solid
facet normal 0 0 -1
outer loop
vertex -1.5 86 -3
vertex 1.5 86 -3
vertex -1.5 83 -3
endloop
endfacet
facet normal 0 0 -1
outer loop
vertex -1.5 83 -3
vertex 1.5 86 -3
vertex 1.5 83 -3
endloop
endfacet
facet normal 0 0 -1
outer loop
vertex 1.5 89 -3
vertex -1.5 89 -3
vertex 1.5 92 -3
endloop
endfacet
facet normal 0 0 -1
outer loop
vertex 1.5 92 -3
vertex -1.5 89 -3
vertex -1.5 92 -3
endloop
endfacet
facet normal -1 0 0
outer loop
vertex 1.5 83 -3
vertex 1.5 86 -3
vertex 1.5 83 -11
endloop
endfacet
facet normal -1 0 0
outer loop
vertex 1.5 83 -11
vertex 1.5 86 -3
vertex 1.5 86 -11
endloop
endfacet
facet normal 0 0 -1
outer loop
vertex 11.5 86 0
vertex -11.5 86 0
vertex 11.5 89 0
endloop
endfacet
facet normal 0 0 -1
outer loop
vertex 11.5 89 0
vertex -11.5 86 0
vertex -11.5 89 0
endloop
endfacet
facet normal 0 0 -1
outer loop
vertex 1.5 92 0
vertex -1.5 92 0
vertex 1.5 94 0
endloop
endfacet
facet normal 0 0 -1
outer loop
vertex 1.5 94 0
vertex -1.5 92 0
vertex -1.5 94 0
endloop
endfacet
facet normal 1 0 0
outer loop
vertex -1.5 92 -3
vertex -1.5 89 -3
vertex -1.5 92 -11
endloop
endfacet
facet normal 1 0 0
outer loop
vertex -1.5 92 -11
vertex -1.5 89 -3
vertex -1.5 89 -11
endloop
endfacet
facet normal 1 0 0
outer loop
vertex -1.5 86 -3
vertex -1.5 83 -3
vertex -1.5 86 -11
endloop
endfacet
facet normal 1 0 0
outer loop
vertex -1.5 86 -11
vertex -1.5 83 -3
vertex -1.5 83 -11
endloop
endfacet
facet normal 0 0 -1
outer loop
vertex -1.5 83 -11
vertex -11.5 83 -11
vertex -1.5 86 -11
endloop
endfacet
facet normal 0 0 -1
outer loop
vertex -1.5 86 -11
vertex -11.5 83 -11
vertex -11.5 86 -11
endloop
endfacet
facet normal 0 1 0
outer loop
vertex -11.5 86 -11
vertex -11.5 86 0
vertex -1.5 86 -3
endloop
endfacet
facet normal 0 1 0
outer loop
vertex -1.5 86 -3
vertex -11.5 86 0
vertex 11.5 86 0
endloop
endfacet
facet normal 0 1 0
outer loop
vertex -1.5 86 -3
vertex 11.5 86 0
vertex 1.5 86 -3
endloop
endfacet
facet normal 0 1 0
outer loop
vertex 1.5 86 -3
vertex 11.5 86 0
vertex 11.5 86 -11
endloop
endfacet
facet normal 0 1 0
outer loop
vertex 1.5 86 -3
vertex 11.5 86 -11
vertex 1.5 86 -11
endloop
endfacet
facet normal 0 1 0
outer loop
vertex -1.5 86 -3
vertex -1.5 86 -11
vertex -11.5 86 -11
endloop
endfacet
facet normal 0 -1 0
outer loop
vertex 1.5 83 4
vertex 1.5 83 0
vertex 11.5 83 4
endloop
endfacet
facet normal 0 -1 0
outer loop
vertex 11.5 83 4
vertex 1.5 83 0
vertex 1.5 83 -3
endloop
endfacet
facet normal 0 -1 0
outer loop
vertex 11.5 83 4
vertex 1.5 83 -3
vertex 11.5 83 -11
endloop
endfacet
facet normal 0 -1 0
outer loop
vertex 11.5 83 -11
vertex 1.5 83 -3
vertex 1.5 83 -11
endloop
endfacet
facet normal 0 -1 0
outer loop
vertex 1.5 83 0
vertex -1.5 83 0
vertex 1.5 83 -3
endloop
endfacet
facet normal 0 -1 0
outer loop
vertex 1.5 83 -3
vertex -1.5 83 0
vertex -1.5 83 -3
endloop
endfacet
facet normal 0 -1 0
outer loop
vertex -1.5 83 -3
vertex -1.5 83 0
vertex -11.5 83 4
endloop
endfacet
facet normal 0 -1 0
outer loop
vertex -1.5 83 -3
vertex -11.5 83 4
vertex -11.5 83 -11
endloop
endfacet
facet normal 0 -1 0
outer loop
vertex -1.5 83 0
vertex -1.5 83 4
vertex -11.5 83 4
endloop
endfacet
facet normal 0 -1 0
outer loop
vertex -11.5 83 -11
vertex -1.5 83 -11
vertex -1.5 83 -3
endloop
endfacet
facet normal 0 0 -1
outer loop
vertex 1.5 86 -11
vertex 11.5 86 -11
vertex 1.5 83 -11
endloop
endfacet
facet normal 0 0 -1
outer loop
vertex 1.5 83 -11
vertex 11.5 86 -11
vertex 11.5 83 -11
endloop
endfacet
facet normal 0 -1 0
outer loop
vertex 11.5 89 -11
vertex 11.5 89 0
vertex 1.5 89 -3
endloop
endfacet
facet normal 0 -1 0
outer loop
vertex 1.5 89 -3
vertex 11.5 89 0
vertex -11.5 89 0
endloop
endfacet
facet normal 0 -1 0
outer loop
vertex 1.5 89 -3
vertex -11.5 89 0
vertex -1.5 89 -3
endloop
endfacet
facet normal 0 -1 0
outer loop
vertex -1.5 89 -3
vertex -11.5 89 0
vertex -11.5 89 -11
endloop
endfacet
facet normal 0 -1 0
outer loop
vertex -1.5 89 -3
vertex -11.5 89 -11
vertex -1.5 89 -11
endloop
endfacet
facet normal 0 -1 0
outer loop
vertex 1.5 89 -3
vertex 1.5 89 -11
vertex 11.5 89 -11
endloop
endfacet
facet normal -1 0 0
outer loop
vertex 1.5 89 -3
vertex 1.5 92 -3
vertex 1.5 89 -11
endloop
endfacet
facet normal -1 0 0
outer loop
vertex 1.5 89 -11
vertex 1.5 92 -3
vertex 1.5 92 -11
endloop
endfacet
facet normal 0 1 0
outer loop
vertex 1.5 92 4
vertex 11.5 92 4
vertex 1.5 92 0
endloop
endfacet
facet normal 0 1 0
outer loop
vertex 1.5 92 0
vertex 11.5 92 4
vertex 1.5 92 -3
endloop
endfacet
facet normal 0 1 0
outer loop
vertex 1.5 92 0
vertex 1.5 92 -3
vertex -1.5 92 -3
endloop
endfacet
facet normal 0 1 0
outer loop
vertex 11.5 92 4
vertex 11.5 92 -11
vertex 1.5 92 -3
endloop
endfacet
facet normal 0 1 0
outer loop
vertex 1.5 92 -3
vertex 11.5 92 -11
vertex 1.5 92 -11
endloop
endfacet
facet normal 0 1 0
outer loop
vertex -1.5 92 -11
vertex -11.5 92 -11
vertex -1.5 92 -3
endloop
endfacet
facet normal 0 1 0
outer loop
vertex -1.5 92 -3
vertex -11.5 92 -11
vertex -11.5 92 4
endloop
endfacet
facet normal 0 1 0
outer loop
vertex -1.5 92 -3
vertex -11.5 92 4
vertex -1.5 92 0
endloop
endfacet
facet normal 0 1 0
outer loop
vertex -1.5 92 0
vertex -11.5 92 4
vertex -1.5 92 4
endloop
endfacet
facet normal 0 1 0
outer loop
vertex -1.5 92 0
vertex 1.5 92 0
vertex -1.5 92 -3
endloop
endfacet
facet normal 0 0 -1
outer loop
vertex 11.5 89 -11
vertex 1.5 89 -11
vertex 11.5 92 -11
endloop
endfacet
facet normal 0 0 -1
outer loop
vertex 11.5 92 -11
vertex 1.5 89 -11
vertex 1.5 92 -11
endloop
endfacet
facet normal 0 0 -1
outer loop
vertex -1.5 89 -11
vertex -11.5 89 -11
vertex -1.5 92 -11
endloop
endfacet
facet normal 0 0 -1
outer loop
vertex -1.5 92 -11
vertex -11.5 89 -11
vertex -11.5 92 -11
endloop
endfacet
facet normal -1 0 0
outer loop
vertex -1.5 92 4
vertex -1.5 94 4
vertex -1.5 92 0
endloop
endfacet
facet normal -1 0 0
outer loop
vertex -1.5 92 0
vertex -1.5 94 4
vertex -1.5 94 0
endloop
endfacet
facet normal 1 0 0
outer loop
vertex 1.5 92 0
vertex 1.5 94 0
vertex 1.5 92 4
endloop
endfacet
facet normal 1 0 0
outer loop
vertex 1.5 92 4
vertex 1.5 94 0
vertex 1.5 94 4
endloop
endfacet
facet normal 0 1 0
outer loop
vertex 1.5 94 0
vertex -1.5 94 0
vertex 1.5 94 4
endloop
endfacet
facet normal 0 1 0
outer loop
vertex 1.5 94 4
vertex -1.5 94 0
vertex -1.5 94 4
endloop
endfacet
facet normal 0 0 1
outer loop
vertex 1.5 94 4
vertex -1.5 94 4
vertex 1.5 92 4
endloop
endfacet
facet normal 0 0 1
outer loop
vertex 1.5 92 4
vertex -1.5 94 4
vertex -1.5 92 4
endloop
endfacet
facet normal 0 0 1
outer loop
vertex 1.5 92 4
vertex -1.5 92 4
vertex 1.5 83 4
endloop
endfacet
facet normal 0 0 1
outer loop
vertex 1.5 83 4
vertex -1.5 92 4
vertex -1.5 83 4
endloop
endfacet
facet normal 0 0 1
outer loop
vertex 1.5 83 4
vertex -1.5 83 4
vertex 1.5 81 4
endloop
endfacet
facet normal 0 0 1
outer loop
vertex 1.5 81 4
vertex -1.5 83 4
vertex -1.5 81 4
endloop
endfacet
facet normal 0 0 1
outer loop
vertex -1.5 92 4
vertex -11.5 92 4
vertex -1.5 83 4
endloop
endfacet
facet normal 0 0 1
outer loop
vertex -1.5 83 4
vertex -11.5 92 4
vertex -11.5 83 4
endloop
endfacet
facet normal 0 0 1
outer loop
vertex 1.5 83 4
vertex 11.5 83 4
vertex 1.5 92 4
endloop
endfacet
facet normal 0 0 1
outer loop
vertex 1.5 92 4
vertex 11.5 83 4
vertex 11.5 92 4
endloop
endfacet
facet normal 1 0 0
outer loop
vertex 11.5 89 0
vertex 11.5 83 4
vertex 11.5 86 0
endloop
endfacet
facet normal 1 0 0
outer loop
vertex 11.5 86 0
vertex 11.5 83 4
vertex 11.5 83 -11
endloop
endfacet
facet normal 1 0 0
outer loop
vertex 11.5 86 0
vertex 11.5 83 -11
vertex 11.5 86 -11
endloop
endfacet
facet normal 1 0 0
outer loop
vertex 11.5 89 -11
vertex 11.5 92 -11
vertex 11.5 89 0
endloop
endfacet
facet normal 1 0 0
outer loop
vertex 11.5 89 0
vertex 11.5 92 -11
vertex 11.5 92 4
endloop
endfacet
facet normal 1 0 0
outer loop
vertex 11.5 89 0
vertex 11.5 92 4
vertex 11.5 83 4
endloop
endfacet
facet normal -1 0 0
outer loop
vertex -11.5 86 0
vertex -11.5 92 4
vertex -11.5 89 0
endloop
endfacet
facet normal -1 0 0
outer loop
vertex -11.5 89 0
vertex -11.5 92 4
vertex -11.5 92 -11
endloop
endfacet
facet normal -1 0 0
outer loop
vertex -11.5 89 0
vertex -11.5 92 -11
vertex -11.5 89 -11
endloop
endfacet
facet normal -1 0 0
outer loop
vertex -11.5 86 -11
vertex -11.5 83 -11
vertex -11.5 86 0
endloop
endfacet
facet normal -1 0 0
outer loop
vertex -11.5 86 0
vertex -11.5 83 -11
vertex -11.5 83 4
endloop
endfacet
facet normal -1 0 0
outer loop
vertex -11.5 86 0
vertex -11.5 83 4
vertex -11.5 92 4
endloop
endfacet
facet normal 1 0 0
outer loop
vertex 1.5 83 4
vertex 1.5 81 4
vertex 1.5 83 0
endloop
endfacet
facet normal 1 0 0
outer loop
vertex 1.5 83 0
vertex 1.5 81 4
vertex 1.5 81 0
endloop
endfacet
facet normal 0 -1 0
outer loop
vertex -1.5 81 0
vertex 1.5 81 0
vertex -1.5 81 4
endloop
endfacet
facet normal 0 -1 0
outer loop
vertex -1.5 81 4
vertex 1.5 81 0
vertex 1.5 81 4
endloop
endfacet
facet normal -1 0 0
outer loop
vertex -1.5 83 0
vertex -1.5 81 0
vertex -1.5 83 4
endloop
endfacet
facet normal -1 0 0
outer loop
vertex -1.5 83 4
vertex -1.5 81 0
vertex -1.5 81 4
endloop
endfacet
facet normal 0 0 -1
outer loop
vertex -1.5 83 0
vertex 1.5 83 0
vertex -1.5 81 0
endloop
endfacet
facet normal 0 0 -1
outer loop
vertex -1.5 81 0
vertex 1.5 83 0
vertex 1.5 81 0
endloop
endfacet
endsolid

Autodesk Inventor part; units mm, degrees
ref_plane "YZ Plane" through (0, 0, 0) normal (1, 0, 0) x (0, 1, 0)
ref_plane "XZ Plane" through (0, 0, 0) normal (0, 1, 0) x (-1, 0, 0)
ref_plane "XY Plane" through (0, 0, 0) normal (0, 0, 1) x (1, 0, 0)
sketch "Sketch1" plane through (0, 0, 0) normal (0, 0, 1) x (1, 0, 0)
  line L0 (-1.5, 81) -> (1.5, 81) projected
  line L1 (1.5, 81) -> (1.5, 86) projected
  line L2 (-1.5, 86) -> (1.5, 86) projected
  line L3 (-1.5, 86) -> (-1.5, 81) projected
  arc A0 (-53.4049, -82.5) -> (-44.7446, -87.5) centre (-44.7446, -77.5) ccw projected
  line L4 (-44.7446, -87.5) -> (44.7446, -87.5) projected
  arc A1 (44.7446, -87.5) -> (53.4049, -82.5) centre (44.7446, -77.5) ccw projected
  line L5 (53.4049, -82.5) -> (98.1495, -5) projected
  arc A2 (98.1495, -5) -> (98.1495, 5) centre (89.4893, 0) ccw projected
  line L6 (98.1495, 5) -> (53.4049, 82.5) projected
  arc A3 (53.4049, 82.5) -> (44.7446, 87.5) centre (44.7446, 77.5) ccw projected
  line L7 (44.7446, 87.5) -> (-44.7446, 87.5) projected
  arc A4 (-44.7446, 87.5) -> (-53.4049, 82.5) centre (-44.7446, 77.5) ccw projected
  line L8 (-53.4049, 82.5) -> (-98.1495, 5) projected
  arc A5 (-98.1495, 5) -> (-98.1495, -5) centre (-89.4893, 0) ccw projected
  line L9 (-98.1495, -5) -> (-53.4049, -82.5) projected
  line L10 (-50.8068, -84) -> (-98.1495, -2) projected
  arc A6 (-98.1495, 2) -> (-98.1495, -2) centre (-94.6854, 0) ccw projected
  line L11 (-98.1495, 2) -> (-50.8068, 84) projected
  arc A7 (-47.3427, 86) -> (-50.8068, 84) centre (-47.3427, 82) ccw projected
  line L12 (-47.3427, 86) -> (47.3427, 86) projected
  arc A8 (50.8068, 84) -> (47.3427, 86) centre (47.3427, 82) ccw projected
  line L13 (50.8068, 84) -> (98.1495, 2) projected
  arc A9 (98.1495, -2) -> (98.1495, 2) centre (94.6854, 0) ccw projected
  line L14 (98.1495, -2) -> (50.8068, -84) projected
  arc A10 (47.3427, -86) -> (50.8068, -84) centre (47.3427, -82) ccw projected
  line L15 (47.3427, -86) -> (-47.3427, -86) projected
  arc A11 (-50.8068, -84) -> (-47.3427, -86) centre (-47.3427, -82) ccw projected
  line L16 (47.3427, 89) -> (-47.3427, 89) projected
  line L17 (1.5, 94) -> (-1.5, 94) projected
  line L18 (-1.5, 94) -> (-1.5, 89) projected
  line L19 (1.5, 89) -> (-1.5, 89) projected
  line L20 (1.5, 89) -> (1.5, 94) projected
  line L21 (1.5, 97) -> (1.5, 94) projected
  line L22 (-1.5, 97) -> (1.5, 97) projected
  line L23 (-1.5, 94) -> (-1.5, 97) projected
  line L24 (1.5, 94) -> (-1.5, 94) projected
  line L25 (-1.5, 78) -> (-1.5, 81) projected
  line L26 (1.5, 78) -> (-1.5, 78) projected
  line L27 (1.5, 81) -> (1.5, 78) projected
  line L28 (-1.5, 81) -> (1.5, 81) projected
  line L29 (-11.5, 89) -> (11.5, 89)
  line L30 (11.5, 89) -> (11.5, 86)
  line L31 (11.5, 86) -> (-11.5, 86)
  line L32 (-11.5, 86) -> (-11.5, 89)
  line L33 (1.5, 92) -> (1.5, 83)
  line L34 (-1.5, 83) -> (-1.5, 92)
  line L35 (1.5, 92) -> (-1.5, 92)
  line L36 (1.5, 83) -> (-1.5, 83)
  point P0 (0, 0)
  dimension "d0" = 10
  dimension "d1" = 10
  dimension "d14" = 3
  dimension "d15" = 3
extrude "Extrusion1" add sketch "Sketch1" along normal blind 4 contours L3 L36 L1 L0 | L3 L2 L1 L36 | L34 L7 L33 L2 | L12 L32 L7 L34 | L33 L7 L30 L12 | L34 L16 L33 L7 | L7 L32 L16 L34 | L33 L16 L30 L7 | L18 L35 L20 L16 | L18 L17 L20 L35
sketch "Sketch2" plane through (0, 0, 4) normal (0, 0, 1) x (1, 0, 0)
  line L0 (1.5, 81) -> (1.5, 86) projected
  line L1 (1.5, 86) -> (11.5, 86) projected
  line L2 (11.5, 86) -> (11.5, 89) projected
  line L3 (11.5, 89) -> (1.5, 89) projected
  line L4 (1.5, 89) -> (1.5, 94) projected
  line L5 (-1.5, 94) -> (-1.5, 89) projected
  line L6 (-1.5, 89) -> (-11.5, 89) projected
  line L7 (-11.5, 89) -> (-11.5, 86) projected
  line L8 (-11.5, 86) -> (-1.5, 86) projected
  line L9 (-1.5, 86) -> (-1.5, 81) projected
  line L10 (-1.5, 81) -> (1.5, 81) projected
  line L11 (1.5, 94) -> (-1.5, 94) projected
  point P0 (0, 0)
sketch "Sketch3" plane through (0, 0, 4) normal (0, 0, 1) x (1, 0, 0)
  line L0 (11.5, 92) -> (-11.5, 92)
  line L1 (-11.5, 92) -> (-11.5, 83)
  line L2 (-11.5, 83) -> (11.5, 83)
  line L3 (11.5, 83) -> (11.5, 92)
  line L4 (11.5, 86) -> (11.5, 89) projected
  line L5 (-11.5, 89) -> (-11.5, 86) projected
  line L6 (1.5, 86) -> (11.5, 86) projected
  line L7 (11.5, 89) -> (1.5, 89) projected
  line L8 (-1.5, 86) -> (-11.5, 86)
  line L9 (-11.5, 86) -> (-11.5, 83)
  line L10 (-11.5, 83) -> (-1.5, 83)
  line L11 (-1.5, 83) -> (-1.5, 86)
  line L12 (-11.5, 89) -> (-11.5, 86) projected
  line L13 (-1.5, 92) -> (-11.5, 92)
  line L14 (-11.5, 92) -> (-11.5, 89)
  line L15 (-11.5, 89) -> (-1.5, 89)
  line L16 (-1.5, 89) -> (-1.5, 92)
  line L17 (-1.5, 94) -> (-1.5, 89) projected
  line L18 (1.5, 81) -> (1.5, 86) projected
  line L19 (11.5, 83) -> (1.5, 83)
  line L20 (1.5, 83) -> (1.5, 86)
  line L21 (1.5, 86) -> (11.5, 86)
  line L22 (11.5, 86) -> (11.5, 83)
  line L23 (11.5, 89) -> (1.5, 89)
  line L24 (1.5, 89) -> (1.5, 92)
  line L25 (1.5, 92) -> (11.5, 92)
  line L26 (11.5, 92) -> (11.5, 89)
  point P0 (0, 0)
  point P1 (-1.5, 97)
  point P2 (1.5, 78)
  dimension "d4" = 3
  dimension "d5" = 3
extrude "Extrusion2" add sketch "Sketch3" against normal blind 15 contours L3 L7 L24 L0 | L16 L15 L1 L0 | L3 L2 L18 L6 | L8 L11 L2 L1
sketch "Sketch4" plane through (0, 0, 0) normal (0, 0, -1) x (-1, 0, 0)
  line L0 (-1.5, 89) -> (-1.5, 92) projected
  line L1 (-11.5, 89) -> (-1.5, 89) projected
  line L2 (-11.5, 86) -> (-11.5, 89) projected
  line L3 (-1.5, 86) -> (-11.5, 86) projected
  line L4 (-1.5, 83) -> (-1.5, 86) projected
  line L5 (-1.5, 81) -> (-1.5, 83) projected
  line L6 (1.5, 83) -> (1.5, 81) projected
  line L7 (1.5, 86) -> (1.5, 83) projected
  line L8 (11.5, 86) -> (1.5, 86) projected
  line L9 (11.5, 89) -> (11.5, 86) projected
  line L10 (1.5, 89) -> (11.5, 89) projected
  line L11 (1.5, 92) -> (1.5, 89) projected
  line L12 (1.5, 94) -> (1.5, 92) projected
  line L13 (-1.5, 92) -> (-1.5, 94) projected
  line L14 (-1.5, 83) -> (-1.5, 86) projected
  line L15 (-1.5, 86) -> (-11.5, 86) projected
  line L16 (-11.5, 86) -> (-11.5, 83) projected
  line L17 (-11.5, 83) -> (-1.5, 83) projected
  line L18 (-1.5, 89) -> (-1.5, 92) projected
  line L19 (-1.5, 92) -> (-11.5, 92) projected
  line L20 (-11.5, 92) -> (-11.5, 89) projected
  line L21 (-11.5, 89) -> (-1.5, 89) projected
  line L22 (1.5, 89) -> (11.5, 89) projected
  line L23 (11.5, 89) -> (11.5, 92) projected
  line L24 (11.5, 92) -> (1.5, 92) projected
  line L25 (1.5, 92) -> (1.5, 89) projected
  line L26 (11.5, 83) -> (11.5, 86) projected
  line L27 (11.5, 86) -> (1.5, 86) projected
  line L28 (1.5, 86) -> (1.5, 83) projected
  line L29 (1.5, 83) -> (11.5, 83) projected
  line L30 (-1.5, 89) -> (-1.5, 92) projected
  line L31 (1.5, 89) -> (-1.5, 89)
  line L32 (-1.5, 89) -> (-1.5, 92)
  line L33 (-1.5, 92) -> (1.5, 92)
  line L34 (1.5, 92) -> (1.5, 89)
  line L35 (-1.5, 83) -> (-1.5, 86) projected
  line L36 (1.5, 86) -> (-1.5, 86)
  line L37 (-1.5, 86) -> (-1.5, 83)
  line L38 (-1.5, 83) -> (1.5, 83)
  line L39 (1.5, 83) -> (1.5, 86)
  line L40 (1.5, 81) -> (-1.5, 81) projected
  line L41 (-1.5, 94) -> (1.5, 94) projected
  point P0 (0, 0)
  dimension "d8" = 3
  dimension "d9" = 3
  dimension "d10" = 3
  dimension "d11" = 3
extrude "Extrusion3" add sketch "Sketch4" along normal blind 3 contours L0 L33 L11 L31 | L36 L7 L38 L4
equation "\"d1\" = d0"
equation "\"d15\" = d14"
equation "\"d5\" = d4"
properties part number "Aligner Helper v1"
